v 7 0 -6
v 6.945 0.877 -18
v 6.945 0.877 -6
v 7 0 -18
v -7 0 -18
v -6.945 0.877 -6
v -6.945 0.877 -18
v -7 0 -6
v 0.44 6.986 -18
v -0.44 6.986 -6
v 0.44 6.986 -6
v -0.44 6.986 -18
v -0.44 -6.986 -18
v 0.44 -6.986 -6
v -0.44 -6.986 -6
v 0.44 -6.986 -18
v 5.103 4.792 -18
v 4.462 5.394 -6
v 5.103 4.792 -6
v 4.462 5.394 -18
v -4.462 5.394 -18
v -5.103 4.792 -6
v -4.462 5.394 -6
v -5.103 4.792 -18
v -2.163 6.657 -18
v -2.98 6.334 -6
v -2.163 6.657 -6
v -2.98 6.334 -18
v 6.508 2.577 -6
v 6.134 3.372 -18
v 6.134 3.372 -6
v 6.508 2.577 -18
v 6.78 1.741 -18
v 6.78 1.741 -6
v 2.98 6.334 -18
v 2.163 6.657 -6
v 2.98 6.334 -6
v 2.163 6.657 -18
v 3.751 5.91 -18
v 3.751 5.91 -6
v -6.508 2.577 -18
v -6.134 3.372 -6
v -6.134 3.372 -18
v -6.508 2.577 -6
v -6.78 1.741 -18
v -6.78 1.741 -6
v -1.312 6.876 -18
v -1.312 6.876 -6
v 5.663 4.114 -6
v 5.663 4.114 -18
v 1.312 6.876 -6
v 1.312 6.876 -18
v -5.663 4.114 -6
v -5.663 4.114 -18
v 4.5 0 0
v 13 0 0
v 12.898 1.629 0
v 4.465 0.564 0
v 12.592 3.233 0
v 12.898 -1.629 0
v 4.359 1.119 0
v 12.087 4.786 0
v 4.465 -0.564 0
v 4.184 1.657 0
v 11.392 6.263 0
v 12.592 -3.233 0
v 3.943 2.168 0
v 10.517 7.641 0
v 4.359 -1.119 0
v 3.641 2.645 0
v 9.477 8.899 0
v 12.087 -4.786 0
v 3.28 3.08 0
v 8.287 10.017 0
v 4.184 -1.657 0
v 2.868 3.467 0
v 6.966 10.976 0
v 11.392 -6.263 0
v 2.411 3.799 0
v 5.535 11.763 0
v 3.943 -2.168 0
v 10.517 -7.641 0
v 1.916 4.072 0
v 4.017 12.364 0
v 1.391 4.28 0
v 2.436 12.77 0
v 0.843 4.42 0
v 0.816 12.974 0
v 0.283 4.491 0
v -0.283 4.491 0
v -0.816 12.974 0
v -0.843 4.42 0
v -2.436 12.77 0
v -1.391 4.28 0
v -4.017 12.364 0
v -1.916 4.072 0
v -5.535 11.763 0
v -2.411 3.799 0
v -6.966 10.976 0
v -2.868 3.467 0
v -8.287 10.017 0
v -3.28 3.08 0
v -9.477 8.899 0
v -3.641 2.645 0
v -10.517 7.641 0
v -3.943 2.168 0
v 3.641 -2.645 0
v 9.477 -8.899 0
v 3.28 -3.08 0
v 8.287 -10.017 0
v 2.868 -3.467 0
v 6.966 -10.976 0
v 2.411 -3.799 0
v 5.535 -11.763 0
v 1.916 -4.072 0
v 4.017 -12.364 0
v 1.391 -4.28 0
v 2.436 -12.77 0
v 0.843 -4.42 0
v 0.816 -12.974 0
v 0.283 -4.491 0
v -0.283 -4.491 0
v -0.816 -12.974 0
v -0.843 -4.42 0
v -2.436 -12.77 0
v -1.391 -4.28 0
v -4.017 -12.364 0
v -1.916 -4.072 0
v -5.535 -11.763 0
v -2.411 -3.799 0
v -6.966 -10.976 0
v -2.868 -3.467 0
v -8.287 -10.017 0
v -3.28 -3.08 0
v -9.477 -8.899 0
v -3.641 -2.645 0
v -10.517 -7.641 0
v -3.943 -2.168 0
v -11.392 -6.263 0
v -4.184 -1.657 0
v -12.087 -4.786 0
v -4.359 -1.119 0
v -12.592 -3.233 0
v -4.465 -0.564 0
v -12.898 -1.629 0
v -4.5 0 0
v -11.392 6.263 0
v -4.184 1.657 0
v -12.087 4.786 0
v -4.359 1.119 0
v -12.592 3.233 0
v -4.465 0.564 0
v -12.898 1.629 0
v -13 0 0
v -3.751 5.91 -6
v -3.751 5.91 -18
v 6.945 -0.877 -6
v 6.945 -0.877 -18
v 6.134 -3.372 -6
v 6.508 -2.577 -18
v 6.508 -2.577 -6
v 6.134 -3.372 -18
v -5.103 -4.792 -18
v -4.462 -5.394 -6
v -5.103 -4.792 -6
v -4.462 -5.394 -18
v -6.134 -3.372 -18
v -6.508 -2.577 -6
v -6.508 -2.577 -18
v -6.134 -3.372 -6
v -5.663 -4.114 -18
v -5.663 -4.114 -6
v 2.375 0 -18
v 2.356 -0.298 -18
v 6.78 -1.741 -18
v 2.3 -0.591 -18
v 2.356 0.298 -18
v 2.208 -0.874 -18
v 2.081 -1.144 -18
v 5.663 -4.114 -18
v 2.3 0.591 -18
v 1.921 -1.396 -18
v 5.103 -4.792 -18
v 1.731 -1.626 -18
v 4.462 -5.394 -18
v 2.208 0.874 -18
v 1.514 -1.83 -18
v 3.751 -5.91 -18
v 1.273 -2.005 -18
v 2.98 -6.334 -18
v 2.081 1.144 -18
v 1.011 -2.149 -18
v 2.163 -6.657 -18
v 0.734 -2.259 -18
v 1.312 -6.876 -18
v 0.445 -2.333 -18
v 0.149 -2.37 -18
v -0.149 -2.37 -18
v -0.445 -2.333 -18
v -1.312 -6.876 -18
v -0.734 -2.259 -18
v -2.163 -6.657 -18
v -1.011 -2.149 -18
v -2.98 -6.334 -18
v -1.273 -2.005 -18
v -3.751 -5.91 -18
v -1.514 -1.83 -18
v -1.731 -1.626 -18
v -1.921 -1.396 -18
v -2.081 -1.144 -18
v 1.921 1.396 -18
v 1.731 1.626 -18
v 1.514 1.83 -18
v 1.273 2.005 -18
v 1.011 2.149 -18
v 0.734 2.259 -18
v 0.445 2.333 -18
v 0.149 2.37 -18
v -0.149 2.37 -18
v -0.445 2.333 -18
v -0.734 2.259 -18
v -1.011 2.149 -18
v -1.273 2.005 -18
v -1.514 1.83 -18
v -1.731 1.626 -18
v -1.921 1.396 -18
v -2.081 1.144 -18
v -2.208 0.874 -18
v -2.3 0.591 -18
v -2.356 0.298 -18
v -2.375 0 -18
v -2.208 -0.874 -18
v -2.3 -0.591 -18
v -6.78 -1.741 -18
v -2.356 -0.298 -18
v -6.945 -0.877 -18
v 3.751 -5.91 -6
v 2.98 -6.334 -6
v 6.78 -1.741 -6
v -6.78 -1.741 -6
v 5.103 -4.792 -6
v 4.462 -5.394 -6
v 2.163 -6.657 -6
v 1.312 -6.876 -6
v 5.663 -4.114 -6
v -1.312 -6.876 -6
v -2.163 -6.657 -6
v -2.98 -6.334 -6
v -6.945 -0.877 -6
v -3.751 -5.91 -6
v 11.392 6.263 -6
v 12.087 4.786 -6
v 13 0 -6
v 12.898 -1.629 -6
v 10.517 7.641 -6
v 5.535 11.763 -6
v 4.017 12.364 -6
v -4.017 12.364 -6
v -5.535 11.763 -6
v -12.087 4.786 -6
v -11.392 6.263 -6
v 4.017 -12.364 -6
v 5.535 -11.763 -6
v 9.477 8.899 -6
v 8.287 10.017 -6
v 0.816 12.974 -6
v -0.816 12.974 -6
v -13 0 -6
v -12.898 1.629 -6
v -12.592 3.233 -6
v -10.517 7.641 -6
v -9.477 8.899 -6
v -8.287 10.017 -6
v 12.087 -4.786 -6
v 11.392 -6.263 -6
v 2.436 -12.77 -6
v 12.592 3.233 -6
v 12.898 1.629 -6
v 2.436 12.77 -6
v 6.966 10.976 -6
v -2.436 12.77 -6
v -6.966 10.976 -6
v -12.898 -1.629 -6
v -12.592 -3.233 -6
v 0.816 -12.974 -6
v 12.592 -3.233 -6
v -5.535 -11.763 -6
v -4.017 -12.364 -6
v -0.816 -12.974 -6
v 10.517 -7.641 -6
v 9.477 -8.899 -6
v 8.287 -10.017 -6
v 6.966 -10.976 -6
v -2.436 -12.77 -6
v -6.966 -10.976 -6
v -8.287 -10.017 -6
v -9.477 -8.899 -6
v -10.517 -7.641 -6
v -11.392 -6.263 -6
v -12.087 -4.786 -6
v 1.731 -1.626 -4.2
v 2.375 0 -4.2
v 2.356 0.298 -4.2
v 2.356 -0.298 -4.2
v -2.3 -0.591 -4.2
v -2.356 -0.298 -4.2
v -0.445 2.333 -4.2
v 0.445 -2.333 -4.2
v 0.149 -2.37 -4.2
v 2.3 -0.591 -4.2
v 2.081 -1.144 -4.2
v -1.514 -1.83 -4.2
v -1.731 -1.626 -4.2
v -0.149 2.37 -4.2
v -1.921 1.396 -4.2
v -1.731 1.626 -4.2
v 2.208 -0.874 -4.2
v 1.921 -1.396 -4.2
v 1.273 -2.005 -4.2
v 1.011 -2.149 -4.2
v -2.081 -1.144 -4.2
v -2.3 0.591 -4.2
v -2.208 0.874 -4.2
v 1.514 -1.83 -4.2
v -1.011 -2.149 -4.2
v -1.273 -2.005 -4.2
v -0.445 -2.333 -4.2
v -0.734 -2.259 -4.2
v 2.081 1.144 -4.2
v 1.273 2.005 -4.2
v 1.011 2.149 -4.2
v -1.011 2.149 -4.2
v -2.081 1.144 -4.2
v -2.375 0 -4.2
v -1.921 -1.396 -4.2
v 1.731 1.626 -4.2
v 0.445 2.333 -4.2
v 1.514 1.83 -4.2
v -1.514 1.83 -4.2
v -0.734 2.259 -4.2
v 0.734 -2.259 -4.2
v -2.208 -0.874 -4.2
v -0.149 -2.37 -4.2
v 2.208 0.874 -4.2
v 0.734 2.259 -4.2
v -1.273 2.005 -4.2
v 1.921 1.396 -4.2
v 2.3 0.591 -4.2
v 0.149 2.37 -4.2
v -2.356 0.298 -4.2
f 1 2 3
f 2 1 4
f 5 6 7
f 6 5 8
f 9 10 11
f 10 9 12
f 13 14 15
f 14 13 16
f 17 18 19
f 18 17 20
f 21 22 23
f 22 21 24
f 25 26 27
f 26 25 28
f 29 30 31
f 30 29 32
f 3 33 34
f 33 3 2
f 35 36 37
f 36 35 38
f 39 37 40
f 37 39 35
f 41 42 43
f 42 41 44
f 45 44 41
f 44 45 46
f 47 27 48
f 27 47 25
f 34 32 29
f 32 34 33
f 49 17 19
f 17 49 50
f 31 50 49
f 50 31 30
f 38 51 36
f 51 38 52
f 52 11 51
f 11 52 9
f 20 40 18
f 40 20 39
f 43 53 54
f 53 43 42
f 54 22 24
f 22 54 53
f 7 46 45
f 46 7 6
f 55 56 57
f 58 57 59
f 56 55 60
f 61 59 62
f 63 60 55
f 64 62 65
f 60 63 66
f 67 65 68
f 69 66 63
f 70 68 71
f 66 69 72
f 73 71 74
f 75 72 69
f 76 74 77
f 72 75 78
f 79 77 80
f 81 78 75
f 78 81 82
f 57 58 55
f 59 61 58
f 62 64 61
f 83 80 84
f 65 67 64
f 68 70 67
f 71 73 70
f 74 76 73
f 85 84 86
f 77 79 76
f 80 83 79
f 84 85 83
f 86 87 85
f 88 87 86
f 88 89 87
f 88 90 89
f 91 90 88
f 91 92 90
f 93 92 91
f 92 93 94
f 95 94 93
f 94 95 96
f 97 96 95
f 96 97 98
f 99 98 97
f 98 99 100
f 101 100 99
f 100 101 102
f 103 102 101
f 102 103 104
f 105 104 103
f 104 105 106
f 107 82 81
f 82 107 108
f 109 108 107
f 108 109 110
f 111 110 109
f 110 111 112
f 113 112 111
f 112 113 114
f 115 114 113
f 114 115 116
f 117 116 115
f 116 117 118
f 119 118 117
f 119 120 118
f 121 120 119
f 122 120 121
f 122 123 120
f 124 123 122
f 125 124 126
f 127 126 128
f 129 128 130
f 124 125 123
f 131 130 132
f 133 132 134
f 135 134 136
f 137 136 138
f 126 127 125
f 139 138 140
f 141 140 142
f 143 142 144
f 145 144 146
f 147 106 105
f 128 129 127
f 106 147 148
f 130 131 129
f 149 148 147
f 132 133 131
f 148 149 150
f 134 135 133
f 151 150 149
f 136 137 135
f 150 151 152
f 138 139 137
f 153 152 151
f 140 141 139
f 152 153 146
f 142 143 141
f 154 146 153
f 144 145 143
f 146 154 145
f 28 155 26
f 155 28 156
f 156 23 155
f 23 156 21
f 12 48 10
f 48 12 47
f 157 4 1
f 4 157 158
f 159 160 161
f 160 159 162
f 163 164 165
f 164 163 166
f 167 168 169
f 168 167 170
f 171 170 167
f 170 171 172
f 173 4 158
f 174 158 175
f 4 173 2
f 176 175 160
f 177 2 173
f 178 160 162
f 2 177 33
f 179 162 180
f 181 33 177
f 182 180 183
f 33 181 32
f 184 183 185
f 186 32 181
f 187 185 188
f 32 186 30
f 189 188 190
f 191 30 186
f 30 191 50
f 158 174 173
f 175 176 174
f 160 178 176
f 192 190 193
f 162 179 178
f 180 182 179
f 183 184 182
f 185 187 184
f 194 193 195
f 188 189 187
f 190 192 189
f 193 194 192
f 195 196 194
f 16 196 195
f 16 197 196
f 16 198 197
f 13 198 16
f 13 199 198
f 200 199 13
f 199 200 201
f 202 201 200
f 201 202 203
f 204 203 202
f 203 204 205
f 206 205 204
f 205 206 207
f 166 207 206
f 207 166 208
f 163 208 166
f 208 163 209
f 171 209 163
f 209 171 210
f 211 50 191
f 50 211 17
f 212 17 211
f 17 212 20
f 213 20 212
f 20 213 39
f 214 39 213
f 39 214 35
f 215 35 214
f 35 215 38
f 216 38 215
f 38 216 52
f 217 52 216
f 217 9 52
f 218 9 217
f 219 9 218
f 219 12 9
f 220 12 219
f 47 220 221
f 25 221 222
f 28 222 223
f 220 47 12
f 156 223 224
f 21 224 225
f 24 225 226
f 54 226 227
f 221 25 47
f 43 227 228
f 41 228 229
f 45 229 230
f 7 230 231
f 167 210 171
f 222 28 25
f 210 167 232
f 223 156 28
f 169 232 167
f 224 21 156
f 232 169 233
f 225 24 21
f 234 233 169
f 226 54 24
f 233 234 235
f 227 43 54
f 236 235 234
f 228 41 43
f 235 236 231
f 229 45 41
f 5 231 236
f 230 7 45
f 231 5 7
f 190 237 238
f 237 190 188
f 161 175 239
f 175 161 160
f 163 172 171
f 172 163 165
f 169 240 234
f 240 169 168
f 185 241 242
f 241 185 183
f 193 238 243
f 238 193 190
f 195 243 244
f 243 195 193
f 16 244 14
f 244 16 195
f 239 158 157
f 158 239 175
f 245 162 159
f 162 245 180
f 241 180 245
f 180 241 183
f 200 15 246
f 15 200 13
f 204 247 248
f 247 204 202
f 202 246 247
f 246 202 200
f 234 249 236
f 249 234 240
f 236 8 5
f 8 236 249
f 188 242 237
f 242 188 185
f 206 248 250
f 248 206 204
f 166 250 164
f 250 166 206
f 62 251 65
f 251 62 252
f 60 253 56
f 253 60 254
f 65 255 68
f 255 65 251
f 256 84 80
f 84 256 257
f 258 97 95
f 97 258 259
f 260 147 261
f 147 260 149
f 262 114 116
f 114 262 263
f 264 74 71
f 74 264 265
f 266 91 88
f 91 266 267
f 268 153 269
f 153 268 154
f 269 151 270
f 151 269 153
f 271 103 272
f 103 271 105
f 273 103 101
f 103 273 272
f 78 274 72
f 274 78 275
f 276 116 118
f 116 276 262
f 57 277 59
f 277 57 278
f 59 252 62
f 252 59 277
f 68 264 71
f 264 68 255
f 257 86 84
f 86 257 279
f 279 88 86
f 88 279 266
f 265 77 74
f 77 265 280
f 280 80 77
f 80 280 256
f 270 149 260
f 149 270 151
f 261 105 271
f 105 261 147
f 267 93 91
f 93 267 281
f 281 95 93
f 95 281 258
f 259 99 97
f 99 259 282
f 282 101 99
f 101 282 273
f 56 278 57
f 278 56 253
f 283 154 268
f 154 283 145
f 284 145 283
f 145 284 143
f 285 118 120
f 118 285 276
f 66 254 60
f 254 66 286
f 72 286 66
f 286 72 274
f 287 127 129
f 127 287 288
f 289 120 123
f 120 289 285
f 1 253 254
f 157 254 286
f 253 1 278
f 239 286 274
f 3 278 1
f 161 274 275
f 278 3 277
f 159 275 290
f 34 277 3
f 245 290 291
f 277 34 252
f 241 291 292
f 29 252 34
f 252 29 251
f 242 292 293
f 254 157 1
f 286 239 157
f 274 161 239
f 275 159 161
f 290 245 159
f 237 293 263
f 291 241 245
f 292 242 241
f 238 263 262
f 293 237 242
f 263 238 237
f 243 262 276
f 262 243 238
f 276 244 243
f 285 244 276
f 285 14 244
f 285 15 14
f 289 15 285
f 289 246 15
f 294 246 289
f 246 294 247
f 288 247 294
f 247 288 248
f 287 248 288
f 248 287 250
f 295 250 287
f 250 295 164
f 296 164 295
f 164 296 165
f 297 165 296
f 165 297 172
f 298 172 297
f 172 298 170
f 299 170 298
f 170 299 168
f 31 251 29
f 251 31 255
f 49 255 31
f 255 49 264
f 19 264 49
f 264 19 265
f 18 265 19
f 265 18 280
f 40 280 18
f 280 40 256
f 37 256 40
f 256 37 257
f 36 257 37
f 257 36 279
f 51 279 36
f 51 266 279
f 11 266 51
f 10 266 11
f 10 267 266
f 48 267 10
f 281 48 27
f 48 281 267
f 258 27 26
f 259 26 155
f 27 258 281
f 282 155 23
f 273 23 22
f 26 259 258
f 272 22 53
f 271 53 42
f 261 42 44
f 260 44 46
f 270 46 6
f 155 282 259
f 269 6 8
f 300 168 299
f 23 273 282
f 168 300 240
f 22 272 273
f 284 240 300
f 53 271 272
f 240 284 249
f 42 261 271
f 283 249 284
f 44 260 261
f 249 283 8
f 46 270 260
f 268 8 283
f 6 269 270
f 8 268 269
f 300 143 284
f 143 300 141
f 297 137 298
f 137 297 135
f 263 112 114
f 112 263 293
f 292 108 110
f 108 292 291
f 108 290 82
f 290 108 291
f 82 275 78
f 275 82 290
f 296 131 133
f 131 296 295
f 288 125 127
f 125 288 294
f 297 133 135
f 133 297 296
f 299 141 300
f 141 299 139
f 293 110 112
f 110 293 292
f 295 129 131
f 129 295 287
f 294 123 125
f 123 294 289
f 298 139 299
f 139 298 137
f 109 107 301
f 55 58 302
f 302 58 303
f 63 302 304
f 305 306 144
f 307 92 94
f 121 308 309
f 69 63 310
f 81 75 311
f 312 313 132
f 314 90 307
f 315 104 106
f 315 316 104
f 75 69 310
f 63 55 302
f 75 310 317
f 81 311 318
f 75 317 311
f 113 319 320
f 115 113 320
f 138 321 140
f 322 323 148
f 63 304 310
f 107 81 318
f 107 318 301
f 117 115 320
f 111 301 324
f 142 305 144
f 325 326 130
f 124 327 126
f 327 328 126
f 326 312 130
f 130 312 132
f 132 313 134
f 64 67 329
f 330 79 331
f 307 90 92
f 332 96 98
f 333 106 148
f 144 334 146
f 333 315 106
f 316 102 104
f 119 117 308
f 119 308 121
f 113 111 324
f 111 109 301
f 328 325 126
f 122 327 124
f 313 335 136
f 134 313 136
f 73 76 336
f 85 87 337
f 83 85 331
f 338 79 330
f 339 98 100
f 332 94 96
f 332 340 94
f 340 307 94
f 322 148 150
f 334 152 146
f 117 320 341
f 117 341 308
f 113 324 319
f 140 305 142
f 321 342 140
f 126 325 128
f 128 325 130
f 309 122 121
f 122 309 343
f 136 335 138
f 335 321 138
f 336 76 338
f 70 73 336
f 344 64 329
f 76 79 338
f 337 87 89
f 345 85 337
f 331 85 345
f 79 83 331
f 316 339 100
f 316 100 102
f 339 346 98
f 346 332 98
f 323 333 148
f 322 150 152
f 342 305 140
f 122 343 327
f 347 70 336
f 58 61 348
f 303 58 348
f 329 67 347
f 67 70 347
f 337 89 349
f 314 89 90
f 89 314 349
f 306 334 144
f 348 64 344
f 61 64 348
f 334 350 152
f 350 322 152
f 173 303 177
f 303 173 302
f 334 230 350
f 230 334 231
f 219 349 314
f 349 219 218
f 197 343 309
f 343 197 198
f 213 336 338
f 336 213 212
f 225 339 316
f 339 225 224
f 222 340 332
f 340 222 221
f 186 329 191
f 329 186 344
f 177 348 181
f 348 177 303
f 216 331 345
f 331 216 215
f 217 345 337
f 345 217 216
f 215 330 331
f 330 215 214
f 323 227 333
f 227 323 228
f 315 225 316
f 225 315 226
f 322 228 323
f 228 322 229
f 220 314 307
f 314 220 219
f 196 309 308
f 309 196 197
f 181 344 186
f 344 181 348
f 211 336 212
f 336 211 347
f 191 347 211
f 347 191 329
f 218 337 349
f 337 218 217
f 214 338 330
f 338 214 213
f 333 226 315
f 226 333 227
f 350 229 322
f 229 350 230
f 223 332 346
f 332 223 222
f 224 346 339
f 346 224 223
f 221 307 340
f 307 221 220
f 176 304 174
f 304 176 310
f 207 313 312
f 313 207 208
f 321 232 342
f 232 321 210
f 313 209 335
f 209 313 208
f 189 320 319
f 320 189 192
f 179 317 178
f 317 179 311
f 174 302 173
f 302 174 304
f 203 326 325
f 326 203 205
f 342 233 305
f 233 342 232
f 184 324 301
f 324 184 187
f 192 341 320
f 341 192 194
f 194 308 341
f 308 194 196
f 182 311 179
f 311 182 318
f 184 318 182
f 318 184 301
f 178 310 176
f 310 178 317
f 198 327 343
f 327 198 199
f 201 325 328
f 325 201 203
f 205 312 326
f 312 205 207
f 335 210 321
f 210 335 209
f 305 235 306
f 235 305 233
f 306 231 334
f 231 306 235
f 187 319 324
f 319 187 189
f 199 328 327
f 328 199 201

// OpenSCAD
$fn = 50;


difference() {
	union() {
		translate(v = [0, 0, -18.0000000000]) {
			cylinder(h = 18, r = 7.0000000000);
		}
		translate(v = [0, 0, -6.0000000000]) {
			cylinder(h = 6, r = 13.0000000000);
		}
	}
	union() {
		translate(v = [0, 0, 0]) {
			rotate(a = [0, 0, 0]) {
				difference() {
					union() {
						#translate(v = [0, 0, -18.0000000000]) {
							cylinder(h = 18, r = 2.2500000000);
						}
						#translate(v = [0, 0, -4.2000000000]) {
							cylinder(h = 4.2000000000, r1 = 2.3750000000, r2 = 4.5000000000);
						}
						#translate(v = [0, 0, -18.0000000000]) {
							cylinder(h = 18, r = 2.3750000000);
						}
						#translate(v = [0, 0, -18.0000000000]) {
							cylinder(h = 18, r = 2.2500000000);
						}
					}
					union();
				}
			}
		}
	}
}
